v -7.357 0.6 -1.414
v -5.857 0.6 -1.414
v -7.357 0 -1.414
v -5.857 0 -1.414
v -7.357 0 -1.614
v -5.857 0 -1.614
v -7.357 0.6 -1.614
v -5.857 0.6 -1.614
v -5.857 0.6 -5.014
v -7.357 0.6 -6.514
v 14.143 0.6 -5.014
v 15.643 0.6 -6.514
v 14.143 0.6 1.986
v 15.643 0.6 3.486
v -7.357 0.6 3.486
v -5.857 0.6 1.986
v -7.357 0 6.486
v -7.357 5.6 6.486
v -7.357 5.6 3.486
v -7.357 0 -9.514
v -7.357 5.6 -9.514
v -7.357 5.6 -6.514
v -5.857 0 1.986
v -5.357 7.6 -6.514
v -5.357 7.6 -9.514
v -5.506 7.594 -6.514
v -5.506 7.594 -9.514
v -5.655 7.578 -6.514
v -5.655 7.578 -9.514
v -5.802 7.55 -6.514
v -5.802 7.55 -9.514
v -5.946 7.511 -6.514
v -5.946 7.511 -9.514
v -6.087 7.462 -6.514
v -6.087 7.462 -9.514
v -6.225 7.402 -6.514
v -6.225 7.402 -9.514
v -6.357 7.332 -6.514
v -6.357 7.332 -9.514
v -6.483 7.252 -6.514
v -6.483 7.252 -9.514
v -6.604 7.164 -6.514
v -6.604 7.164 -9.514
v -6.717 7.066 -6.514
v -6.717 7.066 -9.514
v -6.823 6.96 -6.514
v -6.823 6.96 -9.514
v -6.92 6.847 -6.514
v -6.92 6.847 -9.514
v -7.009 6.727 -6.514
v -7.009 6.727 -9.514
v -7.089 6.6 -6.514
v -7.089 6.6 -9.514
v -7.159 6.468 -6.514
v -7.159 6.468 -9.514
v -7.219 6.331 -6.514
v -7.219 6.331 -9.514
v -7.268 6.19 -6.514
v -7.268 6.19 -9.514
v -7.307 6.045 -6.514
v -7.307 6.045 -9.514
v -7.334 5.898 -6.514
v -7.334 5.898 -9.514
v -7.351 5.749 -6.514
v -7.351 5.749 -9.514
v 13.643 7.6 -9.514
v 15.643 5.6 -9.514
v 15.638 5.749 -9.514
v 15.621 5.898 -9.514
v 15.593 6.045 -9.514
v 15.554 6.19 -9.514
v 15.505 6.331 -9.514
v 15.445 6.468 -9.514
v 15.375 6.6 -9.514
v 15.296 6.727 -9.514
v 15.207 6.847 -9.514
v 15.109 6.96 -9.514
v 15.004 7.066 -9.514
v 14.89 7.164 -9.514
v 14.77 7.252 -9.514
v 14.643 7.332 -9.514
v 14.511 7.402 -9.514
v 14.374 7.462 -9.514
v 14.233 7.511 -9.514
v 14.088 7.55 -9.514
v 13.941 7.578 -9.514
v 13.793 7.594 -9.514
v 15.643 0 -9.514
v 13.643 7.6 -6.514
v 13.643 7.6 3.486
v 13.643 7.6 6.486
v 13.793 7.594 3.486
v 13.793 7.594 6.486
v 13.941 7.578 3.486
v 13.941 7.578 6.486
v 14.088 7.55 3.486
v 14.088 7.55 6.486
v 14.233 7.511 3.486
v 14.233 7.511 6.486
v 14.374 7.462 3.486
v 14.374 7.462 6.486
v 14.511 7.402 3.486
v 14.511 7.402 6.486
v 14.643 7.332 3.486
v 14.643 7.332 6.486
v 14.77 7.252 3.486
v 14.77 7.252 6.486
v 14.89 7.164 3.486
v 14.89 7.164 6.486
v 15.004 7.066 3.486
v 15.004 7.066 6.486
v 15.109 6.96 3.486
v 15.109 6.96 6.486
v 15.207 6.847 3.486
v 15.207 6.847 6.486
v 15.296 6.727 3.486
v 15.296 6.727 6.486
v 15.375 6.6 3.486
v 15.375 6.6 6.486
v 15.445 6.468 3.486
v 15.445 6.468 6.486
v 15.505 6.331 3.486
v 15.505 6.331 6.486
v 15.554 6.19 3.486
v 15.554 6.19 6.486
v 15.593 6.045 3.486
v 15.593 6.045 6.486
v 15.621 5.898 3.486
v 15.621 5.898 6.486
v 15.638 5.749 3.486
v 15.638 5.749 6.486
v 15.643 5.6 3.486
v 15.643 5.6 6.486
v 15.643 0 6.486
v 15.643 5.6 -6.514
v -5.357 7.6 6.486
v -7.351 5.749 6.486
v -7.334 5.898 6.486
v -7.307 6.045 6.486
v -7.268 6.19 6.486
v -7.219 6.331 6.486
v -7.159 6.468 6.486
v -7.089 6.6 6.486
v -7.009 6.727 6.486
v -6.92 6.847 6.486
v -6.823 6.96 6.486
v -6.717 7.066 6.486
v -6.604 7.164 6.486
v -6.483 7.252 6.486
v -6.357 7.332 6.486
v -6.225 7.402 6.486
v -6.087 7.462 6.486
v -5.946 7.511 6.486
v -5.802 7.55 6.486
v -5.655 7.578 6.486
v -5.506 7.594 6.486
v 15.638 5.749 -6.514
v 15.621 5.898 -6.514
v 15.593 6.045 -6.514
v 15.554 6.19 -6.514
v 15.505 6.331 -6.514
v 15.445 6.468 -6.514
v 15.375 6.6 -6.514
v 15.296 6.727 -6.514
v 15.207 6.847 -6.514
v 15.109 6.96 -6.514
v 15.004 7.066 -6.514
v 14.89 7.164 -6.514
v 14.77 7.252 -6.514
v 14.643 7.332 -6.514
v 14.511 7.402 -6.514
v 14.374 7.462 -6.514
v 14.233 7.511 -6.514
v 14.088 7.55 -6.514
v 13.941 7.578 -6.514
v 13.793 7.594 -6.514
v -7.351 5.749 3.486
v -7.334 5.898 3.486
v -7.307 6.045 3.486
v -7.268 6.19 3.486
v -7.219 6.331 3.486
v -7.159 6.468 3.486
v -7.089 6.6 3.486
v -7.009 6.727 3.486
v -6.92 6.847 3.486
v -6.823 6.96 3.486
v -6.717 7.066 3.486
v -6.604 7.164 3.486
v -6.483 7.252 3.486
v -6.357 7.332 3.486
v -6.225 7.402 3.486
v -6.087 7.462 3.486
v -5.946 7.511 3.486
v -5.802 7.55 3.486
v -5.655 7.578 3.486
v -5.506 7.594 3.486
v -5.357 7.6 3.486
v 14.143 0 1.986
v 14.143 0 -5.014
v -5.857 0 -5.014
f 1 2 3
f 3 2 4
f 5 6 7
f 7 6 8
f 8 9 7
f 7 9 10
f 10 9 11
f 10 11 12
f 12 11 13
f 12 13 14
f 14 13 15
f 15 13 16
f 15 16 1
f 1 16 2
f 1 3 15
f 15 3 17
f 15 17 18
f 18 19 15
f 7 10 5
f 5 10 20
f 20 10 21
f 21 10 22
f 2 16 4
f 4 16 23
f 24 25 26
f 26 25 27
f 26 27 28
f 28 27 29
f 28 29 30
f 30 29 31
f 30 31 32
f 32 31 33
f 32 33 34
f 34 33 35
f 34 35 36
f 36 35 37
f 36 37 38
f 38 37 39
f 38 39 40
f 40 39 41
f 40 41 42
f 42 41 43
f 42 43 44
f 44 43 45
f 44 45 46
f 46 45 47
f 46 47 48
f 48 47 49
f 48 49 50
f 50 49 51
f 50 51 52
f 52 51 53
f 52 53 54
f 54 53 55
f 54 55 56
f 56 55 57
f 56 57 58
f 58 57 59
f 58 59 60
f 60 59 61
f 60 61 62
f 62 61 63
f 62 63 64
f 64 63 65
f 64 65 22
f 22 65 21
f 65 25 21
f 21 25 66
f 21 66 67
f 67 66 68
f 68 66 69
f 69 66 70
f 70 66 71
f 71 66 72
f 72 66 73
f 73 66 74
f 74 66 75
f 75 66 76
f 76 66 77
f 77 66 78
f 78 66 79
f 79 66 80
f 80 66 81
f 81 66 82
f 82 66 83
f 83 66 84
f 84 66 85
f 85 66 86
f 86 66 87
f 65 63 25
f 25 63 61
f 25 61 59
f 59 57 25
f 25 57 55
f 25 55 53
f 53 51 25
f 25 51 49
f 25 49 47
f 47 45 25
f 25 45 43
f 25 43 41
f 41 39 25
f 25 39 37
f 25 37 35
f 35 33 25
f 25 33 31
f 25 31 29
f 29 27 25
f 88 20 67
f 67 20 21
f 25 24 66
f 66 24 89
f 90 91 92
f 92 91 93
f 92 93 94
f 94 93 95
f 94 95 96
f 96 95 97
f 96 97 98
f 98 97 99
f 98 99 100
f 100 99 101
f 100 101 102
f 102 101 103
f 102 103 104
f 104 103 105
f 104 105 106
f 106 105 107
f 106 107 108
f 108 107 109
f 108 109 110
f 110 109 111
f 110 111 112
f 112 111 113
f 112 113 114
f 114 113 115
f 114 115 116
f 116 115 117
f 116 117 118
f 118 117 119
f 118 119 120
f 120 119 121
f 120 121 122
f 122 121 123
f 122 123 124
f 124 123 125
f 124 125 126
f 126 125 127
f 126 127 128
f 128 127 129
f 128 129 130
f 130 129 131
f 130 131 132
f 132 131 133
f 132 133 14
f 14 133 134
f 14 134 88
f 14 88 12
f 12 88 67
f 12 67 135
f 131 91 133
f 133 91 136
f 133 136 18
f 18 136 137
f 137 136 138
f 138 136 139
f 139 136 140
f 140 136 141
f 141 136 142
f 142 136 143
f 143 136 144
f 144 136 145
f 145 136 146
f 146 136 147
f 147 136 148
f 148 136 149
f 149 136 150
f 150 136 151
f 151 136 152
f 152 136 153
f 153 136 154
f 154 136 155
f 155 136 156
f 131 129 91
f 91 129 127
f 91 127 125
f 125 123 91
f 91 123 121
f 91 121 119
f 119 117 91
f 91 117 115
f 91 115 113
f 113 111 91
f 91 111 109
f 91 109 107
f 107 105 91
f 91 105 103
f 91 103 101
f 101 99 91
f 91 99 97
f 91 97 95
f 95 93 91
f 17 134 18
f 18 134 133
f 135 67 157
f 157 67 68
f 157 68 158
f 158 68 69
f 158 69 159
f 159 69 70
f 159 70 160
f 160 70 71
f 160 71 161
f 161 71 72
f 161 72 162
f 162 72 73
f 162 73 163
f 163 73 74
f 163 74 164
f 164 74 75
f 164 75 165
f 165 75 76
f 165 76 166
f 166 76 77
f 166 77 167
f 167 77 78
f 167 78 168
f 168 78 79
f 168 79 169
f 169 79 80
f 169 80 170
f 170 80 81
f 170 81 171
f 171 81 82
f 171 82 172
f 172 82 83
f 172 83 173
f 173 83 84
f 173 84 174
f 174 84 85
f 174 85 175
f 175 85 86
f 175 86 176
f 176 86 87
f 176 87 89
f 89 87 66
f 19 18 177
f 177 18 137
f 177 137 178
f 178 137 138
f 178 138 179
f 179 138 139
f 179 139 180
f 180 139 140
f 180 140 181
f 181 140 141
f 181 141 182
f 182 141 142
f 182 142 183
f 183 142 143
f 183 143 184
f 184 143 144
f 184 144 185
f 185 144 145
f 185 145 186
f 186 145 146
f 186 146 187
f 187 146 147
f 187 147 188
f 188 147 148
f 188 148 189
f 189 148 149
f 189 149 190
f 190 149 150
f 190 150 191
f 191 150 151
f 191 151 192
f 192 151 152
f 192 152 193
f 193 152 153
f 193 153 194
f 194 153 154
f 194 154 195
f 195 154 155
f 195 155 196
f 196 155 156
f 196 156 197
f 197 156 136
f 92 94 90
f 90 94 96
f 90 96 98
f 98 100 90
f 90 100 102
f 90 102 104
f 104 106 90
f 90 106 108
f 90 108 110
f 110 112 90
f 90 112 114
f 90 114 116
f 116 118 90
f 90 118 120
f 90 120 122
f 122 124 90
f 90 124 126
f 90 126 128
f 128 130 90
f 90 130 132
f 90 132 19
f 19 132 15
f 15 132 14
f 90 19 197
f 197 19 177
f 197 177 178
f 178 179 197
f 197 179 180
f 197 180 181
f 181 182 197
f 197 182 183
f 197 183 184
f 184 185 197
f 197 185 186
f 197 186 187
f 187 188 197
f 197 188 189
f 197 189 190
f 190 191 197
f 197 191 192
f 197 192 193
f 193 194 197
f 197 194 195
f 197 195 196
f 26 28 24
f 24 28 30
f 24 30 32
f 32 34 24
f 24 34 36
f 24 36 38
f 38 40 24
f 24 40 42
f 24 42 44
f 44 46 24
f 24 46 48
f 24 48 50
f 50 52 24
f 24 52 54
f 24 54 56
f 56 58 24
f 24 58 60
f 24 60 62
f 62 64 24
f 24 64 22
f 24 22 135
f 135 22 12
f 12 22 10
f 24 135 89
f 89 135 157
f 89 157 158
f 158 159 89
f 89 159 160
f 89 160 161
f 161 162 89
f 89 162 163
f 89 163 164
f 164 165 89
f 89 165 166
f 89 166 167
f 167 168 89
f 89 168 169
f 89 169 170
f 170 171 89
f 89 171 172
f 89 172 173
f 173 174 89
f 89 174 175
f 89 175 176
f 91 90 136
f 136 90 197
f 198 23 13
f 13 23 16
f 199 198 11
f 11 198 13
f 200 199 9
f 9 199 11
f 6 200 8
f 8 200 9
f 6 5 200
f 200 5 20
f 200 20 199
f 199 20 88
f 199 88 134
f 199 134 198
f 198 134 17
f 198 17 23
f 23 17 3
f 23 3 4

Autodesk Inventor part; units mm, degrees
ref_plane "YZ Plane" through (0, 0, 0) normal (1, 0, 0) x (0, 1, 0)
ref_plane "XZ Plane" through (0, 0, 0) normal (0, 1, 0) x (-1, 0, 0)
ref_plane "XY Plane" through (0, 0, 0) normal (0, 0, 1) x (1, 0, 0)
sketch "Sketch1" plane through (0, 0, 0) normal (0, 1, 0) x (-1, 0, 0)
  line L0 (5.8568, 1.9857) -> (-14.1432, 1.9857)
  line L1 (-14.1432, 1.9857) -> (-14.1432, -5.0143)
  line L2 (-14.1432, -5.0143) -> (5.8568, -5.0143)
  line L3 (5.8568, -5.0143) -> (5.8568, 1.9857)
  line L4 (7.3568, 3.4857) -> (-15.6432, 3.4857)
  line L5 (-15.6432, 3.4857) -> (-15.6432, -6.5143)
  line L6 (-15.6432, -6.5143) -> (7.3568, -6.5143)
  line L7 (7.3568, -6.5143) -> (7.3568, 3.4857)
  line L8 (7.3568, 3.4857) -> (-15.6432, 3.4857)
  line L9 (-15.6432, 3.4857) -> (-15.6432, 6.4857)
  line L10 (-15.6432, 6.4857) -> (7.3568, 6.4857)
  line L11 (7.3568, 6.4857) -> (7.3568, 3.4857)
  line L12 (7.3568, -6.5143) -> (-15.6432, -6.5143)
  line L13 (-15.6432, -6.5143) -> (-15.6432, -9.5143)
  line L14 (-15.6432, -9.5143) -> (7.3568, -9.5143)
  line L15 (7.3568, -9.5143) -> (7.3568, -6.5143)
  point P0 (0, 0)
  dimension "d0" = 20
  dimension "d1" = 7
  dimension "d2" = 1.5
  dimension "d3" = 3
  dimension "d4" = 3
extrude "Extrusion1" add sketch "Sketch1" along normal blind 0.6 contours L7 L6 L5 L4
extrude "Extrusion2" add sketch "Sketch1" along normal blind 7.6 contours L4 L9 L10 L11 | L15 L14 L13 L6
fillet "Fillet1" radius 2 4 edges at (-7.3568, 7.6, 4.9857) (15.6432, 7.6, -8.0143) (15.6432, 7.6, 4.9857) (-7.3568, 7.6, -8.0143)
sketch "Sketch2" plane through (0, 0.6, 0) normal (0, 1, 0) x (1, 0, 0)
  line L0 (-8.4877, 1.4143) -> (-3.1279, 1.4143)
  line L1 (-3.1279, 1.4143) -> (-3.1279, 1.6143)
  line L2 (-3.1279, 1.6143) -> (-8.4877, 1.6143)
  line L3 (-8.4877, 1.6143) -> (-8.4877, 1.4143)
  line L4 (-5.8568, -1.9857) -> (-5.8568, 5.0143) projected
  point P0 (0, 0)
  point P1 (-5.8568, 1.5143)
  point P2 (-8.4877, 1.5143)
  dimension "d10" = 0.2
extrude "Extrusion3" cut sketch "Sketch2" against normal through all
properties part number "oslona_wlacznika"
